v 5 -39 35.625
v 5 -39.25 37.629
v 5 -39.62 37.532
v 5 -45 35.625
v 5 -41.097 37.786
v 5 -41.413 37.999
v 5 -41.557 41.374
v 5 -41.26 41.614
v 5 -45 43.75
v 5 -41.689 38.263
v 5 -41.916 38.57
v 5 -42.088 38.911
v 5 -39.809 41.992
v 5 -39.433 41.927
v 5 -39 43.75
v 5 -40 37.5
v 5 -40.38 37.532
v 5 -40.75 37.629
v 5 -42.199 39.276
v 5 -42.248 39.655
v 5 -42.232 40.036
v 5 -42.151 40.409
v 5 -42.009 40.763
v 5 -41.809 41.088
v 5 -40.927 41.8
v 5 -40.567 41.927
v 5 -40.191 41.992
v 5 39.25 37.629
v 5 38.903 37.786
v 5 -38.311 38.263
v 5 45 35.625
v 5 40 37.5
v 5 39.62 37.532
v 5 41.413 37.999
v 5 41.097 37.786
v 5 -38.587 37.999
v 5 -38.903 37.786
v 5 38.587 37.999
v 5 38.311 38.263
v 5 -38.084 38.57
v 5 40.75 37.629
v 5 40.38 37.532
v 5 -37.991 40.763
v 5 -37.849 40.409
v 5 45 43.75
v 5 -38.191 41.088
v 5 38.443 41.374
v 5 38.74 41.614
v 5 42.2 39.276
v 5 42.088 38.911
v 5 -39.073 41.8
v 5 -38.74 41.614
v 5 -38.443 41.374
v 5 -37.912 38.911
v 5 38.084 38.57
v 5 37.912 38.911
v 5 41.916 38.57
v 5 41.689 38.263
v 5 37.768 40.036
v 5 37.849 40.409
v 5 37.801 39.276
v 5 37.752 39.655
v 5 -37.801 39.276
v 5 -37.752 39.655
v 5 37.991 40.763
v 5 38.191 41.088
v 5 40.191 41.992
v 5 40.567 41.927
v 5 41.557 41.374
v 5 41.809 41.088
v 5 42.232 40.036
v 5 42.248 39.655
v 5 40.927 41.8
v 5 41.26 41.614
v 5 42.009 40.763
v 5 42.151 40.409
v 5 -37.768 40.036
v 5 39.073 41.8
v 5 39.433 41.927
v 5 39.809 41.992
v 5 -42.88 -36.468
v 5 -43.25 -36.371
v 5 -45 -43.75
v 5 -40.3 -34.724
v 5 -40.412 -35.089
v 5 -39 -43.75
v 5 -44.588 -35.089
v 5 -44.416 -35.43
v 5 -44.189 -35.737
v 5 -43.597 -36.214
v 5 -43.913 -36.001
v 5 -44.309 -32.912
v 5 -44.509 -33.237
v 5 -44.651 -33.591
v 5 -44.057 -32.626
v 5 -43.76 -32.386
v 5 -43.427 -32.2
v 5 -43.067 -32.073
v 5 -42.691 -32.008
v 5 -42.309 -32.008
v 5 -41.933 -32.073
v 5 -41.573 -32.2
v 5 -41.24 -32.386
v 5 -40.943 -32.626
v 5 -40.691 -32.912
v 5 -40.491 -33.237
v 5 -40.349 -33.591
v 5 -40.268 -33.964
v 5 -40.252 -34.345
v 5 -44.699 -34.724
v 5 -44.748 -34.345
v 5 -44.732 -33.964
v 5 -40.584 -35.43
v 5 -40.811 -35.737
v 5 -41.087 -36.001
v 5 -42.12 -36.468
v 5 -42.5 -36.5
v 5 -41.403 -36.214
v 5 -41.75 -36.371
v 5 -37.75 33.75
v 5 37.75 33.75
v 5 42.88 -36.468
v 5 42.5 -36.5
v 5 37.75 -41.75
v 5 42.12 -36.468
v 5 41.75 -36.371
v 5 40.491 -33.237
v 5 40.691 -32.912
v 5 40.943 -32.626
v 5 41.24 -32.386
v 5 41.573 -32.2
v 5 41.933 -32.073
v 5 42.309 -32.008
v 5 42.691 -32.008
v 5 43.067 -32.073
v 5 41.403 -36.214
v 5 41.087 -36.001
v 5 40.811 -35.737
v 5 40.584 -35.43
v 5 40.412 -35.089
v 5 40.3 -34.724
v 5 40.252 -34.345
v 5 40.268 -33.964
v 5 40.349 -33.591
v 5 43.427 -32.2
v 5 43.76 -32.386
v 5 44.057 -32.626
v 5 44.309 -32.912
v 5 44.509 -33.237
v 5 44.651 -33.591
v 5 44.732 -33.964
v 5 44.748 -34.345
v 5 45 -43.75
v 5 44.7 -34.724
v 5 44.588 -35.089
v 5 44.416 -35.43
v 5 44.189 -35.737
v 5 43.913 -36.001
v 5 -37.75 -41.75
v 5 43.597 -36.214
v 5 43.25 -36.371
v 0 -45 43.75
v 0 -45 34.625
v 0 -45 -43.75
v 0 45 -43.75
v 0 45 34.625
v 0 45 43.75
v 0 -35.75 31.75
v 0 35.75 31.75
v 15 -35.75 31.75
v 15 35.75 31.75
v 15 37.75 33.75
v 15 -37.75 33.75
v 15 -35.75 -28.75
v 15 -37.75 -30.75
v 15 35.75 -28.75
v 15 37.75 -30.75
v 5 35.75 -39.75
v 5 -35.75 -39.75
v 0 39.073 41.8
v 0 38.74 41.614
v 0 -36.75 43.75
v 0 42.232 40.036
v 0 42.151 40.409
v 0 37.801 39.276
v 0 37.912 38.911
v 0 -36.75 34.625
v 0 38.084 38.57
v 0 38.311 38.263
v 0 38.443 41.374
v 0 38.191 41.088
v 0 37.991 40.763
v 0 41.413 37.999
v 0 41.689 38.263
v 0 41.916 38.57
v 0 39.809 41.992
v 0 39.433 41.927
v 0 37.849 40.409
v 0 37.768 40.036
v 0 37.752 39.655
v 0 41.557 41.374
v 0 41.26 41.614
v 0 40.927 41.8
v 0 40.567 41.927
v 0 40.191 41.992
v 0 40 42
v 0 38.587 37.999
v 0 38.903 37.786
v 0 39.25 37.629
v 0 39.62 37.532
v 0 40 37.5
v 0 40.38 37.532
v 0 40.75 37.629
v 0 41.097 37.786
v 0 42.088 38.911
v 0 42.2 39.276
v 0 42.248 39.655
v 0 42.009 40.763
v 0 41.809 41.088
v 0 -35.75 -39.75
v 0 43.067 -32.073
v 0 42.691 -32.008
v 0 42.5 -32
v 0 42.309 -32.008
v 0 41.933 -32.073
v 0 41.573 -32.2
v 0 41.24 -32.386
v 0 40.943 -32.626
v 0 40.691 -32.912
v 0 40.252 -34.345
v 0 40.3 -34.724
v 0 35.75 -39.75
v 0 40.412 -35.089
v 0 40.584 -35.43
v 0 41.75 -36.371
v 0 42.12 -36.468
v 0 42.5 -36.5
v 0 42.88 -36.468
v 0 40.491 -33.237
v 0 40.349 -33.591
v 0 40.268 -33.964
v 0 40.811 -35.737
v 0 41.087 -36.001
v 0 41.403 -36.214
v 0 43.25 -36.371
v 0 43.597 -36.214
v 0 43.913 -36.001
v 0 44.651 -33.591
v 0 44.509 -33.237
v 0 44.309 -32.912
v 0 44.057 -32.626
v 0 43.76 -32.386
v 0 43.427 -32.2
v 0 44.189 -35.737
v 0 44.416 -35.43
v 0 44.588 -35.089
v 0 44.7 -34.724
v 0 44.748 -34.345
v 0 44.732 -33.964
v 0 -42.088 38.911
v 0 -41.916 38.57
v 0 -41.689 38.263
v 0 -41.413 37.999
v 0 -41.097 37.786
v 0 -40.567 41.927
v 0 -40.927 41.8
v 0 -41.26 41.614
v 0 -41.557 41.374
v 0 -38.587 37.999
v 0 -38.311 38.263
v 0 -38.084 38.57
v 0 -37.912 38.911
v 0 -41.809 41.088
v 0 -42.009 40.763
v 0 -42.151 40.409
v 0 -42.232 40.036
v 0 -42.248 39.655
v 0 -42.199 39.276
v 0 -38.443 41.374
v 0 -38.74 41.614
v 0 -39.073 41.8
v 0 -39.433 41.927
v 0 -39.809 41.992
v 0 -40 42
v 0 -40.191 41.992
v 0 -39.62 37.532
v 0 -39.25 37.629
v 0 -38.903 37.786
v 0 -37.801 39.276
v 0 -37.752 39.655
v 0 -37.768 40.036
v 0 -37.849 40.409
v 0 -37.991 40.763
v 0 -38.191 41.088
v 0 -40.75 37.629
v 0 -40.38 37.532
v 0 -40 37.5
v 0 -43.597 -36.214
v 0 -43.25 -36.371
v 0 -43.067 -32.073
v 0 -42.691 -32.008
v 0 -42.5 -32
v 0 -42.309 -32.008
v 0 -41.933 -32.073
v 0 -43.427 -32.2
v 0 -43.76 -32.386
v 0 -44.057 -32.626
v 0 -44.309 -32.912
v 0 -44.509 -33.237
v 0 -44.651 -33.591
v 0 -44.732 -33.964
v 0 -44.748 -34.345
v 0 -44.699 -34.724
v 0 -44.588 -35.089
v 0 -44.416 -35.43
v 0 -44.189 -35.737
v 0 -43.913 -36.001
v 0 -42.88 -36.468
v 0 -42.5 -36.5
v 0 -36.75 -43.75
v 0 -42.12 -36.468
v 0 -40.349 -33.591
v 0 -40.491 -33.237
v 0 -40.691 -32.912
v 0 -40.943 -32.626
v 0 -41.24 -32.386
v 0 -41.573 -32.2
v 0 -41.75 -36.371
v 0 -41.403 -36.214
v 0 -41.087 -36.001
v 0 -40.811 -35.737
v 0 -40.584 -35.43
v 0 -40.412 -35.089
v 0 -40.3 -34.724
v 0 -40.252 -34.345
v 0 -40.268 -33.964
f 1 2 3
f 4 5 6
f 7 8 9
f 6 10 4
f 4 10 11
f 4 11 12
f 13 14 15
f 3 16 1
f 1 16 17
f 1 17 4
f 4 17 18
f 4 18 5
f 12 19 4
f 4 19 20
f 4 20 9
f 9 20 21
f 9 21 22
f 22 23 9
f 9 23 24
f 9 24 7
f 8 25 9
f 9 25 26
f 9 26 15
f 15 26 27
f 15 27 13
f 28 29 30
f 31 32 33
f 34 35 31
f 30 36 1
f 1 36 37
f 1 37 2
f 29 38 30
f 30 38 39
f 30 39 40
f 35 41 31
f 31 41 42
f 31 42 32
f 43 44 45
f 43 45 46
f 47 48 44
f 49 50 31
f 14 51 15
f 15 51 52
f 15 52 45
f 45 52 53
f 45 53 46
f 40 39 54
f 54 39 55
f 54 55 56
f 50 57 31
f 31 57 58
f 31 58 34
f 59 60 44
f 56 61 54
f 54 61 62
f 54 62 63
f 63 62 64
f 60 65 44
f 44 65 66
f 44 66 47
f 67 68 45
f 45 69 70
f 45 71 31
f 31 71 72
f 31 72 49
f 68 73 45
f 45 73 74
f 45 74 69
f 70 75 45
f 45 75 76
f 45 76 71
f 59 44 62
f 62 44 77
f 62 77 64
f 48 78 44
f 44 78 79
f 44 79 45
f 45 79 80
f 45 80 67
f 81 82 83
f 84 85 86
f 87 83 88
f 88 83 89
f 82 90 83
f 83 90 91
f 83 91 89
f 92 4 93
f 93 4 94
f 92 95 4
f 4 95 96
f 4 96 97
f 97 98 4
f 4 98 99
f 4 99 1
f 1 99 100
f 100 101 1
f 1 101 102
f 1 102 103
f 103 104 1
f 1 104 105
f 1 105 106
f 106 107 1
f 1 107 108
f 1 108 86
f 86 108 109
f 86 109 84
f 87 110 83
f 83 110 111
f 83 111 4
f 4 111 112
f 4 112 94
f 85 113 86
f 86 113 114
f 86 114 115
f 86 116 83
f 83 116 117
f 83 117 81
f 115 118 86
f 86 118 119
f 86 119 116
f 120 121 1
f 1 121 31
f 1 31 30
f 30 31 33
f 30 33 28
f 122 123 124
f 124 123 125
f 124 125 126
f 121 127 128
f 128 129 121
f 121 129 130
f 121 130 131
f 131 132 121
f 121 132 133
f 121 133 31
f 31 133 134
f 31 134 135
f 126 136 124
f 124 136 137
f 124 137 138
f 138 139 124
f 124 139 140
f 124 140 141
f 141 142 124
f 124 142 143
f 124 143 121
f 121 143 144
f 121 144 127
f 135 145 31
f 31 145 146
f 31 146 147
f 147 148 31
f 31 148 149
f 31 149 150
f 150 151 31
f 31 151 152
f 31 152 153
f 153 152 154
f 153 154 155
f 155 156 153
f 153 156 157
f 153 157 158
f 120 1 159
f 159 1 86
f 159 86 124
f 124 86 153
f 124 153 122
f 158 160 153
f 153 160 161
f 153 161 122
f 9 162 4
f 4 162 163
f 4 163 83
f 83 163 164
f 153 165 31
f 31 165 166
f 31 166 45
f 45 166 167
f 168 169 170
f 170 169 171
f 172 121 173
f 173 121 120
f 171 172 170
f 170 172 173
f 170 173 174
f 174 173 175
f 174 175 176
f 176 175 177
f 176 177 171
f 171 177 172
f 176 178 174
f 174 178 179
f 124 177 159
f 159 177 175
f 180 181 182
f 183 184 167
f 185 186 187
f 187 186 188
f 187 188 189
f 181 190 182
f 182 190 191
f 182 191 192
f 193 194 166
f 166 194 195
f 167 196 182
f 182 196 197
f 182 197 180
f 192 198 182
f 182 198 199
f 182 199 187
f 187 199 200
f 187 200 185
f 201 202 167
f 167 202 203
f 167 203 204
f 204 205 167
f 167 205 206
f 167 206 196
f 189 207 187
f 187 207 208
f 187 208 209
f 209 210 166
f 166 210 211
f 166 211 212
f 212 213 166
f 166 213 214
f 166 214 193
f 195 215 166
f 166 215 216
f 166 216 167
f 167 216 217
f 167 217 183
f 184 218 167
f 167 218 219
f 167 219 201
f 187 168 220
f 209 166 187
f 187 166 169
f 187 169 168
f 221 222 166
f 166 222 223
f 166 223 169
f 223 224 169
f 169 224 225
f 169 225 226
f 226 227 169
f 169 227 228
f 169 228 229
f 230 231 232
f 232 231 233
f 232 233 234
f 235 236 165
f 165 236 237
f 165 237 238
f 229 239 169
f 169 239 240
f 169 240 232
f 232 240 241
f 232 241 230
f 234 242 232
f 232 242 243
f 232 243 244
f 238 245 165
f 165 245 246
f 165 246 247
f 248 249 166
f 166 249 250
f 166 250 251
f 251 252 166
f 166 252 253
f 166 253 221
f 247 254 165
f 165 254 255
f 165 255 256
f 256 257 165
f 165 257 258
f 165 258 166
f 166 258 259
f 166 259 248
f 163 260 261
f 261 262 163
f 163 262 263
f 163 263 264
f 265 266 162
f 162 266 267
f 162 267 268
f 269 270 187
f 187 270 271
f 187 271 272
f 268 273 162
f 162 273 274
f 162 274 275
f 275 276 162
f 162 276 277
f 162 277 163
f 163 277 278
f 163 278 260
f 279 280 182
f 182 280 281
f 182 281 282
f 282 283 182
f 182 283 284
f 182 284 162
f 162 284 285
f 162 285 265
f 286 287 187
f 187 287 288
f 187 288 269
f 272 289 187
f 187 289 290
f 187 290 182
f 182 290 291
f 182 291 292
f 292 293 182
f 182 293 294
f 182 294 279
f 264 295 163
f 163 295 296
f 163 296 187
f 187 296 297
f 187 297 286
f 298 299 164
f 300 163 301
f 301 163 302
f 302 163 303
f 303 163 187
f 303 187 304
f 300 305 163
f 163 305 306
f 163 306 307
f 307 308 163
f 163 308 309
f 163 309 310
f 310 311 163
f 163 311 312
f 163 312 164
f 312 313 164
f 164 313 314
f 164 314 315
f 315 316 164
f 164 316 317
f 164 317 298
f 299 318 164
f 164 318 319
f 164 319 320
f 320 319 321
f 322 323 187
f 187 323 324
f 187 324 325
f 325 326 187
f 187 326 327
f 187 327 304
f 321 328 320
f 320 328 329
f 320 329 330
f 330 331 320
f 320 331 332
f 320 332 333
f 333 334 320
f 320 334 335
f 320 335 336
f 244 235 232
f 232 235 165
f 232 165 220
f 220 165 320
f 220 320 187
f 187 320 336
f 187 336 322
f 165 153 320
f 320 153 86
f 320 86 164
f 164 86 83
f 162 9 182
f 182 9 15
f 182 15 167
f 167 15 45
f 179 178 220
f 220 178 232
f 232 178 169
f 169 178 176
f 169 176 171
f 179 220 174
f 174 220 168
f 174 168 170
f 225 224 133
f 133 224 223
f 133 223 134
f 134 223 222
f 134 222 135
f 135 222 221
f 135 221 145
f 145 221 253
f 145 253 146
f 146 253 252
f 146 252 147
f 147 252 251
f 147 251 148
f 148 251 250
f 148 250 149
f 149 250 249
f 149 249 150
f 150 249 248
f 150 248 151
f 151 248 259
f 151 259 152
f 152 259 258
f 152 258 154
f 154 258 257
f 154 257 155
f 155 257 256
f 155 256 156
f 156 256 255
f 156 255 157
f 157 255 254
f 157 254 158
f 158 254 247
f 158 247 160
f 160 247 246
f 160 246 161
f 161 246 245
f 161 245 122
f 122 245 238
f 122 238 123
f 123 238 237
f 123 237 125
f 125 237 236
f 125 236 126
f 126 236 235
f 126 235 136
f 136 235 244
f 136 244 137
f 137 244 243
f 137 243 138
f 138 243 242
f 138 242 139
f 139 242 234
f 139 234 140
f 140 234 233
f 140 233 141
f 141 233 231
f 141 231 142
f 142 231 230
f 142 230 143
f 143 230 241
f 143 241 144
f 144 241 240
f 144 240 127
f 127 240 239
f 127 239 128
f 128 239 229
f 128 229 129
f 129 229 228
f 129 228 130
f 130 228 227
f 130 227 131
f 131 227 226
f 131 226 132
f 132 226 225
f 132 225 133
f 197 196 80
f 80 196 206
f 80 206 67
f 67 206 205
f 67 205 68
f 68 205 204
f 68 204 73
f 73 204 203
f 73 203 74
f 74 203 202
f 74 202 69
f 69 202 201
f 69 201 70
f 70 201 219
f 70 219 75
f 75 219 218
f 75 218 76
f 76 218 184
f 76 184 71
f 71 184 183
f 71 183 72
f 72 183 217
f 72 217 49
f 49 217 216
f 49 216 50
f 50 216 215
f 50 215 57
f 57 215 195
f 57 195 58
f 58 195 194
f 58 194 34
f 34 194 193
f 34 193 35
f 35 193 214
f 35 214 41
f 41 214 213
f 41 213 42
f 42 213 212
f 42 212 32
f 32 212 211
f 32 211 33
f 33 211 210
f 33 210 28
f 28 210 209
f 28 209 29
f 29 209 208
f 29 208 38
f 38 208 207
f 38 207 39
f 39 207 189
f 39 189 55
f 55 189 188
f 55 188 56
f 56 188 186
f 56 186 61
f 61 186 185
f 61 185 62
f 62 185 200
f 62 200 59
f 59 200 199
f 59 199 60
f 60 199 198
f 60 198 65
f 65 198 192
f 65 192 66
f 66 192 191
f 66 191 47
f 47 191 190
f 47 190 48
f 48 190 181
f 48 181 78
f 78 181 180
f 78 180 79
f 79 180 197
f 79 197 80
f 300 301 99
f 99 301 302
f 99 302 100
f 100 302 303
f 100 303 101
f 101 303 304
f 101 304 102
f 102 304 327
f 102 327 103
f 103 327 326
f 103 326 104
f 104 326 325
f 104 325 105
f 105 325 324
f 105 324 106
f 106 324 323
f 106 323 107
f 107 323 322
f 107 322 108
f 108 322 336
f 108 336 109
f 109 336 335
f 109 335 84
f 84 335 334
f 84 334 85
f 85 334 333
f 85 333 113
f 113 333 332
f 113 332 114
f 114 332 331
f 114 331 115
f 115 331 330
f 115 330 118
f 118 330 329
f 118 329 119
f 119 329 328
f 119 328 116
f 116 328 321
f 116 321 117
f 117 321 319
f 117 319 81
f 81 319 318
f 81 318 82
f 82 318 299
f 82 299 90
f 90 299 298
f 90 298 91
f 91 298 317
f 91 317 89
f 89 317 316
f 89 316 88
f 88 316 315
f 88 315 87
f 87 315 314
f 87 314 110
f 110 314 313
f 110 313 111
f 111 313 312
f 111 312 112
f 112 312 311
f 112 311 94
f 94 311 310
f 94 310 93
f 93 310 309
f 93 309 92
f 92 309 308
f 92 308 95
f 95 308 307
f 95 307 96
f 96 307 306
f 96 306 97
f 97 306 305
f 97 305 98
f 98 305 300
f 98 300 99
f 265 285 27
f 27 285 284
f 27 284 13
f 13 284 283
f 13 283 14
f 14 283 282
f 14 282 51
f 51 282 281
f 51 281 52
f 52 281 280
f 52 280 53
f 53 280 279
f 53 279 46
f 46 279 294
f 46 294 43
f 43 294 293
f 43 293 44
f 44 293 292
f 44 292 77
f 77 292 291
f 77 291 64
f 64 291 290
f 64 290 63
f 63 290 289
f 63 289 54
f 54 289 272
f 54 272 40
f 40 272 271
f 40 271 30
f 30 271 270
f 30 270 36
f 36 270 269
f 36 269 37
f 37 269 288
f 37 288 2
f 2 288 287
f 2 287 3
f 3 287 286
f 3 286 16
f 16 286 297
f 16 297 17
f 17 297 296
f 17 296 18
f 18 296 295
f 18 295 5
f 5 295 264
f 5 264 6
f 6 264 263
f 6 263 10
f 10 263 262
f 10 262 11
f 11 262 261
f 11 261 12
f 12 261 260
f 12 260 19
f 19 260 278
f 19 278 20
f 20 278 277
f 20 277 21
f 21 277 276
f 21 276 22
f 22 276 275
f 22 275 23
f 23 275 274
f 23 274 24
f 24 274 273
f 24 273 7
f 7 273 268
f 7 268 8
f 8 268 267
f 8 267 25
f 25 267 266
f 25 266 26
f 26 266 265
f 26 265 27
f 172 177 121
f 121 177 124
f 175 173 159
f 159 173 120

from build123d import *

# Parameters (mm, degrees)
SKETCH1_W                     = 87.5
SKETCH1_H                     = 90
SKETCH1_W_2                   = 71.5
SKETCH1_H_2                   = 71.5
BOSS_EXTRUDE1_DEPTH           = 5
M4_CLEARANCE_HOLE1_AT_2_COUNT = 2
M4_CLEARANCE_HOLE1_AT_2_PITCH = 74.042217687
SKETCH5_W                     = 10
SKETCH5_H                     = 2
BOSS_EXTRUDE2_DEPTH           = 90
SKETCH6_W                     = 87.5
SKETCH6_H                     = 7.25
CUT_EXTRUDE1_DEPTH            = 10
BOSS_EXTRUDE3_DEPTH           = 2


with BuildPart() as part:
    # Sketch1 → Boss-Extrude1 (new body)
    with BuildSketch(Plane(origin=(0, 0, 0), x_dir=(0, 0, -1), z_dir=(1, 0, 0))):
        Rectangle(SKETCH1_W, SKETCH1_H)
        with Locations((4, 0)):
            Rectangle(SKETCH1_W_2, SKETCH1_H_2, mode=Mode.SUBTRACT)
    extrude(amount=BOSS_EXTRUDE1_DEPTH)

    # Sketch4 → M4 Clearance Hole1 (revolve, cut)
    with BuildSketch(Plane(origin=(5, 40, 39.75), x_dir=(0, 0, -1), z_dir=(0, 1, 0))):
        Polygon((0, 0), (0, 9.151936393), (2.25, 7.8), (2.25, 0), align=None)
    m4_clearance_hole1 = revolve(axis=Axis((11.35, 40, 39.75), (-1, 0, 0)), mode=Mode.SUBTRACT)

    # M4 Clearance Hole1 at 2: M4 Clearance Hole1 ×2
    with Locations(*[Vector(0, 0.0337645208112264, -0.9994298160123043) * (i * M4_CLEARANCE_HOLE1_AT_2_PITCH) for i in range(1, M4_CLEARANCE_HOLE1_AT_2_COUNT)]):
        add(m4_clearance_hole1, mode=Mode.SUBTRACT)

    # Mirror1: M4 Clearance Hole1 across plane
    add(m4_clearance_hole1.mirror(Plane.ZX), mode=Mode.SUBTRACT)

    # Mirror1 copy 1 sketch → Mirror1 copy 1 (revolve, cut)
    with BuildSketch(Plane(origin=(5, -42.5, -34.25), x_dir=(0, 0, -1), z_dir=(0, -1, 0))):
        Polygon((0, 0), (0, -9.151936393), (2.25, -7.8), (2.25, 0), align=None)
    revolve(axis=Axis((11.35, -42.5, -34.25), (1, 0, 0)), mode=Mode.SUBTRACT)

    # Sketch5 → Boss-Extrude2 (add)
    with BuildSketch(Plane(origin=(0, 45, 0), x_dir=(1, 0, 0), z_dir=(0, 1, 0))):
        with Locations((10, -32.75)):
            Rectangle(SKETCH5_W, SKETCH5_H)
        Polygon((5, 41.75), (5, 39.75), (15, 28.75), (15, 30.75), align=None)
    extrude(amount=-BOSS_EXTRUDE2_DEPTH)

    # Sketch6 → Cut-Extrude1 (cut)
    with BuildSketch(Plane(origin=(5, 0, 0), x_dir=(0, 0, -1), z_dir=(1, 0, 0))):
        with Locations((0, 41.375)):
            Rectangle(SKETCH6_W, SKETCH6_H)
    cut_extrude1 = extrude(amount=CUT_EXTRUDE1_DEPTH, mode=Mode.SUBTRACT)

    # Sketch8 → Boss-Extrude3 (add)
    with BuildSketch(Plane(origin=(0, 37.75, 0), x_dir=(1, 0, 0), z_dir=(0, 1, 0))):
        Polygon((15, 28.75), (15, -31.75), (5, -31.75), (5, 39.75), align=None)
    boss_extrude3 = extrude(amount=-BOSS_EXTRUDE3_DEPTH)

    # Mirror7: Cut-Extrude1, Boss-Extrude3 across plane
    add(cut_extrude1.mirror(Plane.ZX), mode=Mode.SUBTRACT)
    add(boss_extrude3.mirror(Plane.ZX))


solid = part.part
